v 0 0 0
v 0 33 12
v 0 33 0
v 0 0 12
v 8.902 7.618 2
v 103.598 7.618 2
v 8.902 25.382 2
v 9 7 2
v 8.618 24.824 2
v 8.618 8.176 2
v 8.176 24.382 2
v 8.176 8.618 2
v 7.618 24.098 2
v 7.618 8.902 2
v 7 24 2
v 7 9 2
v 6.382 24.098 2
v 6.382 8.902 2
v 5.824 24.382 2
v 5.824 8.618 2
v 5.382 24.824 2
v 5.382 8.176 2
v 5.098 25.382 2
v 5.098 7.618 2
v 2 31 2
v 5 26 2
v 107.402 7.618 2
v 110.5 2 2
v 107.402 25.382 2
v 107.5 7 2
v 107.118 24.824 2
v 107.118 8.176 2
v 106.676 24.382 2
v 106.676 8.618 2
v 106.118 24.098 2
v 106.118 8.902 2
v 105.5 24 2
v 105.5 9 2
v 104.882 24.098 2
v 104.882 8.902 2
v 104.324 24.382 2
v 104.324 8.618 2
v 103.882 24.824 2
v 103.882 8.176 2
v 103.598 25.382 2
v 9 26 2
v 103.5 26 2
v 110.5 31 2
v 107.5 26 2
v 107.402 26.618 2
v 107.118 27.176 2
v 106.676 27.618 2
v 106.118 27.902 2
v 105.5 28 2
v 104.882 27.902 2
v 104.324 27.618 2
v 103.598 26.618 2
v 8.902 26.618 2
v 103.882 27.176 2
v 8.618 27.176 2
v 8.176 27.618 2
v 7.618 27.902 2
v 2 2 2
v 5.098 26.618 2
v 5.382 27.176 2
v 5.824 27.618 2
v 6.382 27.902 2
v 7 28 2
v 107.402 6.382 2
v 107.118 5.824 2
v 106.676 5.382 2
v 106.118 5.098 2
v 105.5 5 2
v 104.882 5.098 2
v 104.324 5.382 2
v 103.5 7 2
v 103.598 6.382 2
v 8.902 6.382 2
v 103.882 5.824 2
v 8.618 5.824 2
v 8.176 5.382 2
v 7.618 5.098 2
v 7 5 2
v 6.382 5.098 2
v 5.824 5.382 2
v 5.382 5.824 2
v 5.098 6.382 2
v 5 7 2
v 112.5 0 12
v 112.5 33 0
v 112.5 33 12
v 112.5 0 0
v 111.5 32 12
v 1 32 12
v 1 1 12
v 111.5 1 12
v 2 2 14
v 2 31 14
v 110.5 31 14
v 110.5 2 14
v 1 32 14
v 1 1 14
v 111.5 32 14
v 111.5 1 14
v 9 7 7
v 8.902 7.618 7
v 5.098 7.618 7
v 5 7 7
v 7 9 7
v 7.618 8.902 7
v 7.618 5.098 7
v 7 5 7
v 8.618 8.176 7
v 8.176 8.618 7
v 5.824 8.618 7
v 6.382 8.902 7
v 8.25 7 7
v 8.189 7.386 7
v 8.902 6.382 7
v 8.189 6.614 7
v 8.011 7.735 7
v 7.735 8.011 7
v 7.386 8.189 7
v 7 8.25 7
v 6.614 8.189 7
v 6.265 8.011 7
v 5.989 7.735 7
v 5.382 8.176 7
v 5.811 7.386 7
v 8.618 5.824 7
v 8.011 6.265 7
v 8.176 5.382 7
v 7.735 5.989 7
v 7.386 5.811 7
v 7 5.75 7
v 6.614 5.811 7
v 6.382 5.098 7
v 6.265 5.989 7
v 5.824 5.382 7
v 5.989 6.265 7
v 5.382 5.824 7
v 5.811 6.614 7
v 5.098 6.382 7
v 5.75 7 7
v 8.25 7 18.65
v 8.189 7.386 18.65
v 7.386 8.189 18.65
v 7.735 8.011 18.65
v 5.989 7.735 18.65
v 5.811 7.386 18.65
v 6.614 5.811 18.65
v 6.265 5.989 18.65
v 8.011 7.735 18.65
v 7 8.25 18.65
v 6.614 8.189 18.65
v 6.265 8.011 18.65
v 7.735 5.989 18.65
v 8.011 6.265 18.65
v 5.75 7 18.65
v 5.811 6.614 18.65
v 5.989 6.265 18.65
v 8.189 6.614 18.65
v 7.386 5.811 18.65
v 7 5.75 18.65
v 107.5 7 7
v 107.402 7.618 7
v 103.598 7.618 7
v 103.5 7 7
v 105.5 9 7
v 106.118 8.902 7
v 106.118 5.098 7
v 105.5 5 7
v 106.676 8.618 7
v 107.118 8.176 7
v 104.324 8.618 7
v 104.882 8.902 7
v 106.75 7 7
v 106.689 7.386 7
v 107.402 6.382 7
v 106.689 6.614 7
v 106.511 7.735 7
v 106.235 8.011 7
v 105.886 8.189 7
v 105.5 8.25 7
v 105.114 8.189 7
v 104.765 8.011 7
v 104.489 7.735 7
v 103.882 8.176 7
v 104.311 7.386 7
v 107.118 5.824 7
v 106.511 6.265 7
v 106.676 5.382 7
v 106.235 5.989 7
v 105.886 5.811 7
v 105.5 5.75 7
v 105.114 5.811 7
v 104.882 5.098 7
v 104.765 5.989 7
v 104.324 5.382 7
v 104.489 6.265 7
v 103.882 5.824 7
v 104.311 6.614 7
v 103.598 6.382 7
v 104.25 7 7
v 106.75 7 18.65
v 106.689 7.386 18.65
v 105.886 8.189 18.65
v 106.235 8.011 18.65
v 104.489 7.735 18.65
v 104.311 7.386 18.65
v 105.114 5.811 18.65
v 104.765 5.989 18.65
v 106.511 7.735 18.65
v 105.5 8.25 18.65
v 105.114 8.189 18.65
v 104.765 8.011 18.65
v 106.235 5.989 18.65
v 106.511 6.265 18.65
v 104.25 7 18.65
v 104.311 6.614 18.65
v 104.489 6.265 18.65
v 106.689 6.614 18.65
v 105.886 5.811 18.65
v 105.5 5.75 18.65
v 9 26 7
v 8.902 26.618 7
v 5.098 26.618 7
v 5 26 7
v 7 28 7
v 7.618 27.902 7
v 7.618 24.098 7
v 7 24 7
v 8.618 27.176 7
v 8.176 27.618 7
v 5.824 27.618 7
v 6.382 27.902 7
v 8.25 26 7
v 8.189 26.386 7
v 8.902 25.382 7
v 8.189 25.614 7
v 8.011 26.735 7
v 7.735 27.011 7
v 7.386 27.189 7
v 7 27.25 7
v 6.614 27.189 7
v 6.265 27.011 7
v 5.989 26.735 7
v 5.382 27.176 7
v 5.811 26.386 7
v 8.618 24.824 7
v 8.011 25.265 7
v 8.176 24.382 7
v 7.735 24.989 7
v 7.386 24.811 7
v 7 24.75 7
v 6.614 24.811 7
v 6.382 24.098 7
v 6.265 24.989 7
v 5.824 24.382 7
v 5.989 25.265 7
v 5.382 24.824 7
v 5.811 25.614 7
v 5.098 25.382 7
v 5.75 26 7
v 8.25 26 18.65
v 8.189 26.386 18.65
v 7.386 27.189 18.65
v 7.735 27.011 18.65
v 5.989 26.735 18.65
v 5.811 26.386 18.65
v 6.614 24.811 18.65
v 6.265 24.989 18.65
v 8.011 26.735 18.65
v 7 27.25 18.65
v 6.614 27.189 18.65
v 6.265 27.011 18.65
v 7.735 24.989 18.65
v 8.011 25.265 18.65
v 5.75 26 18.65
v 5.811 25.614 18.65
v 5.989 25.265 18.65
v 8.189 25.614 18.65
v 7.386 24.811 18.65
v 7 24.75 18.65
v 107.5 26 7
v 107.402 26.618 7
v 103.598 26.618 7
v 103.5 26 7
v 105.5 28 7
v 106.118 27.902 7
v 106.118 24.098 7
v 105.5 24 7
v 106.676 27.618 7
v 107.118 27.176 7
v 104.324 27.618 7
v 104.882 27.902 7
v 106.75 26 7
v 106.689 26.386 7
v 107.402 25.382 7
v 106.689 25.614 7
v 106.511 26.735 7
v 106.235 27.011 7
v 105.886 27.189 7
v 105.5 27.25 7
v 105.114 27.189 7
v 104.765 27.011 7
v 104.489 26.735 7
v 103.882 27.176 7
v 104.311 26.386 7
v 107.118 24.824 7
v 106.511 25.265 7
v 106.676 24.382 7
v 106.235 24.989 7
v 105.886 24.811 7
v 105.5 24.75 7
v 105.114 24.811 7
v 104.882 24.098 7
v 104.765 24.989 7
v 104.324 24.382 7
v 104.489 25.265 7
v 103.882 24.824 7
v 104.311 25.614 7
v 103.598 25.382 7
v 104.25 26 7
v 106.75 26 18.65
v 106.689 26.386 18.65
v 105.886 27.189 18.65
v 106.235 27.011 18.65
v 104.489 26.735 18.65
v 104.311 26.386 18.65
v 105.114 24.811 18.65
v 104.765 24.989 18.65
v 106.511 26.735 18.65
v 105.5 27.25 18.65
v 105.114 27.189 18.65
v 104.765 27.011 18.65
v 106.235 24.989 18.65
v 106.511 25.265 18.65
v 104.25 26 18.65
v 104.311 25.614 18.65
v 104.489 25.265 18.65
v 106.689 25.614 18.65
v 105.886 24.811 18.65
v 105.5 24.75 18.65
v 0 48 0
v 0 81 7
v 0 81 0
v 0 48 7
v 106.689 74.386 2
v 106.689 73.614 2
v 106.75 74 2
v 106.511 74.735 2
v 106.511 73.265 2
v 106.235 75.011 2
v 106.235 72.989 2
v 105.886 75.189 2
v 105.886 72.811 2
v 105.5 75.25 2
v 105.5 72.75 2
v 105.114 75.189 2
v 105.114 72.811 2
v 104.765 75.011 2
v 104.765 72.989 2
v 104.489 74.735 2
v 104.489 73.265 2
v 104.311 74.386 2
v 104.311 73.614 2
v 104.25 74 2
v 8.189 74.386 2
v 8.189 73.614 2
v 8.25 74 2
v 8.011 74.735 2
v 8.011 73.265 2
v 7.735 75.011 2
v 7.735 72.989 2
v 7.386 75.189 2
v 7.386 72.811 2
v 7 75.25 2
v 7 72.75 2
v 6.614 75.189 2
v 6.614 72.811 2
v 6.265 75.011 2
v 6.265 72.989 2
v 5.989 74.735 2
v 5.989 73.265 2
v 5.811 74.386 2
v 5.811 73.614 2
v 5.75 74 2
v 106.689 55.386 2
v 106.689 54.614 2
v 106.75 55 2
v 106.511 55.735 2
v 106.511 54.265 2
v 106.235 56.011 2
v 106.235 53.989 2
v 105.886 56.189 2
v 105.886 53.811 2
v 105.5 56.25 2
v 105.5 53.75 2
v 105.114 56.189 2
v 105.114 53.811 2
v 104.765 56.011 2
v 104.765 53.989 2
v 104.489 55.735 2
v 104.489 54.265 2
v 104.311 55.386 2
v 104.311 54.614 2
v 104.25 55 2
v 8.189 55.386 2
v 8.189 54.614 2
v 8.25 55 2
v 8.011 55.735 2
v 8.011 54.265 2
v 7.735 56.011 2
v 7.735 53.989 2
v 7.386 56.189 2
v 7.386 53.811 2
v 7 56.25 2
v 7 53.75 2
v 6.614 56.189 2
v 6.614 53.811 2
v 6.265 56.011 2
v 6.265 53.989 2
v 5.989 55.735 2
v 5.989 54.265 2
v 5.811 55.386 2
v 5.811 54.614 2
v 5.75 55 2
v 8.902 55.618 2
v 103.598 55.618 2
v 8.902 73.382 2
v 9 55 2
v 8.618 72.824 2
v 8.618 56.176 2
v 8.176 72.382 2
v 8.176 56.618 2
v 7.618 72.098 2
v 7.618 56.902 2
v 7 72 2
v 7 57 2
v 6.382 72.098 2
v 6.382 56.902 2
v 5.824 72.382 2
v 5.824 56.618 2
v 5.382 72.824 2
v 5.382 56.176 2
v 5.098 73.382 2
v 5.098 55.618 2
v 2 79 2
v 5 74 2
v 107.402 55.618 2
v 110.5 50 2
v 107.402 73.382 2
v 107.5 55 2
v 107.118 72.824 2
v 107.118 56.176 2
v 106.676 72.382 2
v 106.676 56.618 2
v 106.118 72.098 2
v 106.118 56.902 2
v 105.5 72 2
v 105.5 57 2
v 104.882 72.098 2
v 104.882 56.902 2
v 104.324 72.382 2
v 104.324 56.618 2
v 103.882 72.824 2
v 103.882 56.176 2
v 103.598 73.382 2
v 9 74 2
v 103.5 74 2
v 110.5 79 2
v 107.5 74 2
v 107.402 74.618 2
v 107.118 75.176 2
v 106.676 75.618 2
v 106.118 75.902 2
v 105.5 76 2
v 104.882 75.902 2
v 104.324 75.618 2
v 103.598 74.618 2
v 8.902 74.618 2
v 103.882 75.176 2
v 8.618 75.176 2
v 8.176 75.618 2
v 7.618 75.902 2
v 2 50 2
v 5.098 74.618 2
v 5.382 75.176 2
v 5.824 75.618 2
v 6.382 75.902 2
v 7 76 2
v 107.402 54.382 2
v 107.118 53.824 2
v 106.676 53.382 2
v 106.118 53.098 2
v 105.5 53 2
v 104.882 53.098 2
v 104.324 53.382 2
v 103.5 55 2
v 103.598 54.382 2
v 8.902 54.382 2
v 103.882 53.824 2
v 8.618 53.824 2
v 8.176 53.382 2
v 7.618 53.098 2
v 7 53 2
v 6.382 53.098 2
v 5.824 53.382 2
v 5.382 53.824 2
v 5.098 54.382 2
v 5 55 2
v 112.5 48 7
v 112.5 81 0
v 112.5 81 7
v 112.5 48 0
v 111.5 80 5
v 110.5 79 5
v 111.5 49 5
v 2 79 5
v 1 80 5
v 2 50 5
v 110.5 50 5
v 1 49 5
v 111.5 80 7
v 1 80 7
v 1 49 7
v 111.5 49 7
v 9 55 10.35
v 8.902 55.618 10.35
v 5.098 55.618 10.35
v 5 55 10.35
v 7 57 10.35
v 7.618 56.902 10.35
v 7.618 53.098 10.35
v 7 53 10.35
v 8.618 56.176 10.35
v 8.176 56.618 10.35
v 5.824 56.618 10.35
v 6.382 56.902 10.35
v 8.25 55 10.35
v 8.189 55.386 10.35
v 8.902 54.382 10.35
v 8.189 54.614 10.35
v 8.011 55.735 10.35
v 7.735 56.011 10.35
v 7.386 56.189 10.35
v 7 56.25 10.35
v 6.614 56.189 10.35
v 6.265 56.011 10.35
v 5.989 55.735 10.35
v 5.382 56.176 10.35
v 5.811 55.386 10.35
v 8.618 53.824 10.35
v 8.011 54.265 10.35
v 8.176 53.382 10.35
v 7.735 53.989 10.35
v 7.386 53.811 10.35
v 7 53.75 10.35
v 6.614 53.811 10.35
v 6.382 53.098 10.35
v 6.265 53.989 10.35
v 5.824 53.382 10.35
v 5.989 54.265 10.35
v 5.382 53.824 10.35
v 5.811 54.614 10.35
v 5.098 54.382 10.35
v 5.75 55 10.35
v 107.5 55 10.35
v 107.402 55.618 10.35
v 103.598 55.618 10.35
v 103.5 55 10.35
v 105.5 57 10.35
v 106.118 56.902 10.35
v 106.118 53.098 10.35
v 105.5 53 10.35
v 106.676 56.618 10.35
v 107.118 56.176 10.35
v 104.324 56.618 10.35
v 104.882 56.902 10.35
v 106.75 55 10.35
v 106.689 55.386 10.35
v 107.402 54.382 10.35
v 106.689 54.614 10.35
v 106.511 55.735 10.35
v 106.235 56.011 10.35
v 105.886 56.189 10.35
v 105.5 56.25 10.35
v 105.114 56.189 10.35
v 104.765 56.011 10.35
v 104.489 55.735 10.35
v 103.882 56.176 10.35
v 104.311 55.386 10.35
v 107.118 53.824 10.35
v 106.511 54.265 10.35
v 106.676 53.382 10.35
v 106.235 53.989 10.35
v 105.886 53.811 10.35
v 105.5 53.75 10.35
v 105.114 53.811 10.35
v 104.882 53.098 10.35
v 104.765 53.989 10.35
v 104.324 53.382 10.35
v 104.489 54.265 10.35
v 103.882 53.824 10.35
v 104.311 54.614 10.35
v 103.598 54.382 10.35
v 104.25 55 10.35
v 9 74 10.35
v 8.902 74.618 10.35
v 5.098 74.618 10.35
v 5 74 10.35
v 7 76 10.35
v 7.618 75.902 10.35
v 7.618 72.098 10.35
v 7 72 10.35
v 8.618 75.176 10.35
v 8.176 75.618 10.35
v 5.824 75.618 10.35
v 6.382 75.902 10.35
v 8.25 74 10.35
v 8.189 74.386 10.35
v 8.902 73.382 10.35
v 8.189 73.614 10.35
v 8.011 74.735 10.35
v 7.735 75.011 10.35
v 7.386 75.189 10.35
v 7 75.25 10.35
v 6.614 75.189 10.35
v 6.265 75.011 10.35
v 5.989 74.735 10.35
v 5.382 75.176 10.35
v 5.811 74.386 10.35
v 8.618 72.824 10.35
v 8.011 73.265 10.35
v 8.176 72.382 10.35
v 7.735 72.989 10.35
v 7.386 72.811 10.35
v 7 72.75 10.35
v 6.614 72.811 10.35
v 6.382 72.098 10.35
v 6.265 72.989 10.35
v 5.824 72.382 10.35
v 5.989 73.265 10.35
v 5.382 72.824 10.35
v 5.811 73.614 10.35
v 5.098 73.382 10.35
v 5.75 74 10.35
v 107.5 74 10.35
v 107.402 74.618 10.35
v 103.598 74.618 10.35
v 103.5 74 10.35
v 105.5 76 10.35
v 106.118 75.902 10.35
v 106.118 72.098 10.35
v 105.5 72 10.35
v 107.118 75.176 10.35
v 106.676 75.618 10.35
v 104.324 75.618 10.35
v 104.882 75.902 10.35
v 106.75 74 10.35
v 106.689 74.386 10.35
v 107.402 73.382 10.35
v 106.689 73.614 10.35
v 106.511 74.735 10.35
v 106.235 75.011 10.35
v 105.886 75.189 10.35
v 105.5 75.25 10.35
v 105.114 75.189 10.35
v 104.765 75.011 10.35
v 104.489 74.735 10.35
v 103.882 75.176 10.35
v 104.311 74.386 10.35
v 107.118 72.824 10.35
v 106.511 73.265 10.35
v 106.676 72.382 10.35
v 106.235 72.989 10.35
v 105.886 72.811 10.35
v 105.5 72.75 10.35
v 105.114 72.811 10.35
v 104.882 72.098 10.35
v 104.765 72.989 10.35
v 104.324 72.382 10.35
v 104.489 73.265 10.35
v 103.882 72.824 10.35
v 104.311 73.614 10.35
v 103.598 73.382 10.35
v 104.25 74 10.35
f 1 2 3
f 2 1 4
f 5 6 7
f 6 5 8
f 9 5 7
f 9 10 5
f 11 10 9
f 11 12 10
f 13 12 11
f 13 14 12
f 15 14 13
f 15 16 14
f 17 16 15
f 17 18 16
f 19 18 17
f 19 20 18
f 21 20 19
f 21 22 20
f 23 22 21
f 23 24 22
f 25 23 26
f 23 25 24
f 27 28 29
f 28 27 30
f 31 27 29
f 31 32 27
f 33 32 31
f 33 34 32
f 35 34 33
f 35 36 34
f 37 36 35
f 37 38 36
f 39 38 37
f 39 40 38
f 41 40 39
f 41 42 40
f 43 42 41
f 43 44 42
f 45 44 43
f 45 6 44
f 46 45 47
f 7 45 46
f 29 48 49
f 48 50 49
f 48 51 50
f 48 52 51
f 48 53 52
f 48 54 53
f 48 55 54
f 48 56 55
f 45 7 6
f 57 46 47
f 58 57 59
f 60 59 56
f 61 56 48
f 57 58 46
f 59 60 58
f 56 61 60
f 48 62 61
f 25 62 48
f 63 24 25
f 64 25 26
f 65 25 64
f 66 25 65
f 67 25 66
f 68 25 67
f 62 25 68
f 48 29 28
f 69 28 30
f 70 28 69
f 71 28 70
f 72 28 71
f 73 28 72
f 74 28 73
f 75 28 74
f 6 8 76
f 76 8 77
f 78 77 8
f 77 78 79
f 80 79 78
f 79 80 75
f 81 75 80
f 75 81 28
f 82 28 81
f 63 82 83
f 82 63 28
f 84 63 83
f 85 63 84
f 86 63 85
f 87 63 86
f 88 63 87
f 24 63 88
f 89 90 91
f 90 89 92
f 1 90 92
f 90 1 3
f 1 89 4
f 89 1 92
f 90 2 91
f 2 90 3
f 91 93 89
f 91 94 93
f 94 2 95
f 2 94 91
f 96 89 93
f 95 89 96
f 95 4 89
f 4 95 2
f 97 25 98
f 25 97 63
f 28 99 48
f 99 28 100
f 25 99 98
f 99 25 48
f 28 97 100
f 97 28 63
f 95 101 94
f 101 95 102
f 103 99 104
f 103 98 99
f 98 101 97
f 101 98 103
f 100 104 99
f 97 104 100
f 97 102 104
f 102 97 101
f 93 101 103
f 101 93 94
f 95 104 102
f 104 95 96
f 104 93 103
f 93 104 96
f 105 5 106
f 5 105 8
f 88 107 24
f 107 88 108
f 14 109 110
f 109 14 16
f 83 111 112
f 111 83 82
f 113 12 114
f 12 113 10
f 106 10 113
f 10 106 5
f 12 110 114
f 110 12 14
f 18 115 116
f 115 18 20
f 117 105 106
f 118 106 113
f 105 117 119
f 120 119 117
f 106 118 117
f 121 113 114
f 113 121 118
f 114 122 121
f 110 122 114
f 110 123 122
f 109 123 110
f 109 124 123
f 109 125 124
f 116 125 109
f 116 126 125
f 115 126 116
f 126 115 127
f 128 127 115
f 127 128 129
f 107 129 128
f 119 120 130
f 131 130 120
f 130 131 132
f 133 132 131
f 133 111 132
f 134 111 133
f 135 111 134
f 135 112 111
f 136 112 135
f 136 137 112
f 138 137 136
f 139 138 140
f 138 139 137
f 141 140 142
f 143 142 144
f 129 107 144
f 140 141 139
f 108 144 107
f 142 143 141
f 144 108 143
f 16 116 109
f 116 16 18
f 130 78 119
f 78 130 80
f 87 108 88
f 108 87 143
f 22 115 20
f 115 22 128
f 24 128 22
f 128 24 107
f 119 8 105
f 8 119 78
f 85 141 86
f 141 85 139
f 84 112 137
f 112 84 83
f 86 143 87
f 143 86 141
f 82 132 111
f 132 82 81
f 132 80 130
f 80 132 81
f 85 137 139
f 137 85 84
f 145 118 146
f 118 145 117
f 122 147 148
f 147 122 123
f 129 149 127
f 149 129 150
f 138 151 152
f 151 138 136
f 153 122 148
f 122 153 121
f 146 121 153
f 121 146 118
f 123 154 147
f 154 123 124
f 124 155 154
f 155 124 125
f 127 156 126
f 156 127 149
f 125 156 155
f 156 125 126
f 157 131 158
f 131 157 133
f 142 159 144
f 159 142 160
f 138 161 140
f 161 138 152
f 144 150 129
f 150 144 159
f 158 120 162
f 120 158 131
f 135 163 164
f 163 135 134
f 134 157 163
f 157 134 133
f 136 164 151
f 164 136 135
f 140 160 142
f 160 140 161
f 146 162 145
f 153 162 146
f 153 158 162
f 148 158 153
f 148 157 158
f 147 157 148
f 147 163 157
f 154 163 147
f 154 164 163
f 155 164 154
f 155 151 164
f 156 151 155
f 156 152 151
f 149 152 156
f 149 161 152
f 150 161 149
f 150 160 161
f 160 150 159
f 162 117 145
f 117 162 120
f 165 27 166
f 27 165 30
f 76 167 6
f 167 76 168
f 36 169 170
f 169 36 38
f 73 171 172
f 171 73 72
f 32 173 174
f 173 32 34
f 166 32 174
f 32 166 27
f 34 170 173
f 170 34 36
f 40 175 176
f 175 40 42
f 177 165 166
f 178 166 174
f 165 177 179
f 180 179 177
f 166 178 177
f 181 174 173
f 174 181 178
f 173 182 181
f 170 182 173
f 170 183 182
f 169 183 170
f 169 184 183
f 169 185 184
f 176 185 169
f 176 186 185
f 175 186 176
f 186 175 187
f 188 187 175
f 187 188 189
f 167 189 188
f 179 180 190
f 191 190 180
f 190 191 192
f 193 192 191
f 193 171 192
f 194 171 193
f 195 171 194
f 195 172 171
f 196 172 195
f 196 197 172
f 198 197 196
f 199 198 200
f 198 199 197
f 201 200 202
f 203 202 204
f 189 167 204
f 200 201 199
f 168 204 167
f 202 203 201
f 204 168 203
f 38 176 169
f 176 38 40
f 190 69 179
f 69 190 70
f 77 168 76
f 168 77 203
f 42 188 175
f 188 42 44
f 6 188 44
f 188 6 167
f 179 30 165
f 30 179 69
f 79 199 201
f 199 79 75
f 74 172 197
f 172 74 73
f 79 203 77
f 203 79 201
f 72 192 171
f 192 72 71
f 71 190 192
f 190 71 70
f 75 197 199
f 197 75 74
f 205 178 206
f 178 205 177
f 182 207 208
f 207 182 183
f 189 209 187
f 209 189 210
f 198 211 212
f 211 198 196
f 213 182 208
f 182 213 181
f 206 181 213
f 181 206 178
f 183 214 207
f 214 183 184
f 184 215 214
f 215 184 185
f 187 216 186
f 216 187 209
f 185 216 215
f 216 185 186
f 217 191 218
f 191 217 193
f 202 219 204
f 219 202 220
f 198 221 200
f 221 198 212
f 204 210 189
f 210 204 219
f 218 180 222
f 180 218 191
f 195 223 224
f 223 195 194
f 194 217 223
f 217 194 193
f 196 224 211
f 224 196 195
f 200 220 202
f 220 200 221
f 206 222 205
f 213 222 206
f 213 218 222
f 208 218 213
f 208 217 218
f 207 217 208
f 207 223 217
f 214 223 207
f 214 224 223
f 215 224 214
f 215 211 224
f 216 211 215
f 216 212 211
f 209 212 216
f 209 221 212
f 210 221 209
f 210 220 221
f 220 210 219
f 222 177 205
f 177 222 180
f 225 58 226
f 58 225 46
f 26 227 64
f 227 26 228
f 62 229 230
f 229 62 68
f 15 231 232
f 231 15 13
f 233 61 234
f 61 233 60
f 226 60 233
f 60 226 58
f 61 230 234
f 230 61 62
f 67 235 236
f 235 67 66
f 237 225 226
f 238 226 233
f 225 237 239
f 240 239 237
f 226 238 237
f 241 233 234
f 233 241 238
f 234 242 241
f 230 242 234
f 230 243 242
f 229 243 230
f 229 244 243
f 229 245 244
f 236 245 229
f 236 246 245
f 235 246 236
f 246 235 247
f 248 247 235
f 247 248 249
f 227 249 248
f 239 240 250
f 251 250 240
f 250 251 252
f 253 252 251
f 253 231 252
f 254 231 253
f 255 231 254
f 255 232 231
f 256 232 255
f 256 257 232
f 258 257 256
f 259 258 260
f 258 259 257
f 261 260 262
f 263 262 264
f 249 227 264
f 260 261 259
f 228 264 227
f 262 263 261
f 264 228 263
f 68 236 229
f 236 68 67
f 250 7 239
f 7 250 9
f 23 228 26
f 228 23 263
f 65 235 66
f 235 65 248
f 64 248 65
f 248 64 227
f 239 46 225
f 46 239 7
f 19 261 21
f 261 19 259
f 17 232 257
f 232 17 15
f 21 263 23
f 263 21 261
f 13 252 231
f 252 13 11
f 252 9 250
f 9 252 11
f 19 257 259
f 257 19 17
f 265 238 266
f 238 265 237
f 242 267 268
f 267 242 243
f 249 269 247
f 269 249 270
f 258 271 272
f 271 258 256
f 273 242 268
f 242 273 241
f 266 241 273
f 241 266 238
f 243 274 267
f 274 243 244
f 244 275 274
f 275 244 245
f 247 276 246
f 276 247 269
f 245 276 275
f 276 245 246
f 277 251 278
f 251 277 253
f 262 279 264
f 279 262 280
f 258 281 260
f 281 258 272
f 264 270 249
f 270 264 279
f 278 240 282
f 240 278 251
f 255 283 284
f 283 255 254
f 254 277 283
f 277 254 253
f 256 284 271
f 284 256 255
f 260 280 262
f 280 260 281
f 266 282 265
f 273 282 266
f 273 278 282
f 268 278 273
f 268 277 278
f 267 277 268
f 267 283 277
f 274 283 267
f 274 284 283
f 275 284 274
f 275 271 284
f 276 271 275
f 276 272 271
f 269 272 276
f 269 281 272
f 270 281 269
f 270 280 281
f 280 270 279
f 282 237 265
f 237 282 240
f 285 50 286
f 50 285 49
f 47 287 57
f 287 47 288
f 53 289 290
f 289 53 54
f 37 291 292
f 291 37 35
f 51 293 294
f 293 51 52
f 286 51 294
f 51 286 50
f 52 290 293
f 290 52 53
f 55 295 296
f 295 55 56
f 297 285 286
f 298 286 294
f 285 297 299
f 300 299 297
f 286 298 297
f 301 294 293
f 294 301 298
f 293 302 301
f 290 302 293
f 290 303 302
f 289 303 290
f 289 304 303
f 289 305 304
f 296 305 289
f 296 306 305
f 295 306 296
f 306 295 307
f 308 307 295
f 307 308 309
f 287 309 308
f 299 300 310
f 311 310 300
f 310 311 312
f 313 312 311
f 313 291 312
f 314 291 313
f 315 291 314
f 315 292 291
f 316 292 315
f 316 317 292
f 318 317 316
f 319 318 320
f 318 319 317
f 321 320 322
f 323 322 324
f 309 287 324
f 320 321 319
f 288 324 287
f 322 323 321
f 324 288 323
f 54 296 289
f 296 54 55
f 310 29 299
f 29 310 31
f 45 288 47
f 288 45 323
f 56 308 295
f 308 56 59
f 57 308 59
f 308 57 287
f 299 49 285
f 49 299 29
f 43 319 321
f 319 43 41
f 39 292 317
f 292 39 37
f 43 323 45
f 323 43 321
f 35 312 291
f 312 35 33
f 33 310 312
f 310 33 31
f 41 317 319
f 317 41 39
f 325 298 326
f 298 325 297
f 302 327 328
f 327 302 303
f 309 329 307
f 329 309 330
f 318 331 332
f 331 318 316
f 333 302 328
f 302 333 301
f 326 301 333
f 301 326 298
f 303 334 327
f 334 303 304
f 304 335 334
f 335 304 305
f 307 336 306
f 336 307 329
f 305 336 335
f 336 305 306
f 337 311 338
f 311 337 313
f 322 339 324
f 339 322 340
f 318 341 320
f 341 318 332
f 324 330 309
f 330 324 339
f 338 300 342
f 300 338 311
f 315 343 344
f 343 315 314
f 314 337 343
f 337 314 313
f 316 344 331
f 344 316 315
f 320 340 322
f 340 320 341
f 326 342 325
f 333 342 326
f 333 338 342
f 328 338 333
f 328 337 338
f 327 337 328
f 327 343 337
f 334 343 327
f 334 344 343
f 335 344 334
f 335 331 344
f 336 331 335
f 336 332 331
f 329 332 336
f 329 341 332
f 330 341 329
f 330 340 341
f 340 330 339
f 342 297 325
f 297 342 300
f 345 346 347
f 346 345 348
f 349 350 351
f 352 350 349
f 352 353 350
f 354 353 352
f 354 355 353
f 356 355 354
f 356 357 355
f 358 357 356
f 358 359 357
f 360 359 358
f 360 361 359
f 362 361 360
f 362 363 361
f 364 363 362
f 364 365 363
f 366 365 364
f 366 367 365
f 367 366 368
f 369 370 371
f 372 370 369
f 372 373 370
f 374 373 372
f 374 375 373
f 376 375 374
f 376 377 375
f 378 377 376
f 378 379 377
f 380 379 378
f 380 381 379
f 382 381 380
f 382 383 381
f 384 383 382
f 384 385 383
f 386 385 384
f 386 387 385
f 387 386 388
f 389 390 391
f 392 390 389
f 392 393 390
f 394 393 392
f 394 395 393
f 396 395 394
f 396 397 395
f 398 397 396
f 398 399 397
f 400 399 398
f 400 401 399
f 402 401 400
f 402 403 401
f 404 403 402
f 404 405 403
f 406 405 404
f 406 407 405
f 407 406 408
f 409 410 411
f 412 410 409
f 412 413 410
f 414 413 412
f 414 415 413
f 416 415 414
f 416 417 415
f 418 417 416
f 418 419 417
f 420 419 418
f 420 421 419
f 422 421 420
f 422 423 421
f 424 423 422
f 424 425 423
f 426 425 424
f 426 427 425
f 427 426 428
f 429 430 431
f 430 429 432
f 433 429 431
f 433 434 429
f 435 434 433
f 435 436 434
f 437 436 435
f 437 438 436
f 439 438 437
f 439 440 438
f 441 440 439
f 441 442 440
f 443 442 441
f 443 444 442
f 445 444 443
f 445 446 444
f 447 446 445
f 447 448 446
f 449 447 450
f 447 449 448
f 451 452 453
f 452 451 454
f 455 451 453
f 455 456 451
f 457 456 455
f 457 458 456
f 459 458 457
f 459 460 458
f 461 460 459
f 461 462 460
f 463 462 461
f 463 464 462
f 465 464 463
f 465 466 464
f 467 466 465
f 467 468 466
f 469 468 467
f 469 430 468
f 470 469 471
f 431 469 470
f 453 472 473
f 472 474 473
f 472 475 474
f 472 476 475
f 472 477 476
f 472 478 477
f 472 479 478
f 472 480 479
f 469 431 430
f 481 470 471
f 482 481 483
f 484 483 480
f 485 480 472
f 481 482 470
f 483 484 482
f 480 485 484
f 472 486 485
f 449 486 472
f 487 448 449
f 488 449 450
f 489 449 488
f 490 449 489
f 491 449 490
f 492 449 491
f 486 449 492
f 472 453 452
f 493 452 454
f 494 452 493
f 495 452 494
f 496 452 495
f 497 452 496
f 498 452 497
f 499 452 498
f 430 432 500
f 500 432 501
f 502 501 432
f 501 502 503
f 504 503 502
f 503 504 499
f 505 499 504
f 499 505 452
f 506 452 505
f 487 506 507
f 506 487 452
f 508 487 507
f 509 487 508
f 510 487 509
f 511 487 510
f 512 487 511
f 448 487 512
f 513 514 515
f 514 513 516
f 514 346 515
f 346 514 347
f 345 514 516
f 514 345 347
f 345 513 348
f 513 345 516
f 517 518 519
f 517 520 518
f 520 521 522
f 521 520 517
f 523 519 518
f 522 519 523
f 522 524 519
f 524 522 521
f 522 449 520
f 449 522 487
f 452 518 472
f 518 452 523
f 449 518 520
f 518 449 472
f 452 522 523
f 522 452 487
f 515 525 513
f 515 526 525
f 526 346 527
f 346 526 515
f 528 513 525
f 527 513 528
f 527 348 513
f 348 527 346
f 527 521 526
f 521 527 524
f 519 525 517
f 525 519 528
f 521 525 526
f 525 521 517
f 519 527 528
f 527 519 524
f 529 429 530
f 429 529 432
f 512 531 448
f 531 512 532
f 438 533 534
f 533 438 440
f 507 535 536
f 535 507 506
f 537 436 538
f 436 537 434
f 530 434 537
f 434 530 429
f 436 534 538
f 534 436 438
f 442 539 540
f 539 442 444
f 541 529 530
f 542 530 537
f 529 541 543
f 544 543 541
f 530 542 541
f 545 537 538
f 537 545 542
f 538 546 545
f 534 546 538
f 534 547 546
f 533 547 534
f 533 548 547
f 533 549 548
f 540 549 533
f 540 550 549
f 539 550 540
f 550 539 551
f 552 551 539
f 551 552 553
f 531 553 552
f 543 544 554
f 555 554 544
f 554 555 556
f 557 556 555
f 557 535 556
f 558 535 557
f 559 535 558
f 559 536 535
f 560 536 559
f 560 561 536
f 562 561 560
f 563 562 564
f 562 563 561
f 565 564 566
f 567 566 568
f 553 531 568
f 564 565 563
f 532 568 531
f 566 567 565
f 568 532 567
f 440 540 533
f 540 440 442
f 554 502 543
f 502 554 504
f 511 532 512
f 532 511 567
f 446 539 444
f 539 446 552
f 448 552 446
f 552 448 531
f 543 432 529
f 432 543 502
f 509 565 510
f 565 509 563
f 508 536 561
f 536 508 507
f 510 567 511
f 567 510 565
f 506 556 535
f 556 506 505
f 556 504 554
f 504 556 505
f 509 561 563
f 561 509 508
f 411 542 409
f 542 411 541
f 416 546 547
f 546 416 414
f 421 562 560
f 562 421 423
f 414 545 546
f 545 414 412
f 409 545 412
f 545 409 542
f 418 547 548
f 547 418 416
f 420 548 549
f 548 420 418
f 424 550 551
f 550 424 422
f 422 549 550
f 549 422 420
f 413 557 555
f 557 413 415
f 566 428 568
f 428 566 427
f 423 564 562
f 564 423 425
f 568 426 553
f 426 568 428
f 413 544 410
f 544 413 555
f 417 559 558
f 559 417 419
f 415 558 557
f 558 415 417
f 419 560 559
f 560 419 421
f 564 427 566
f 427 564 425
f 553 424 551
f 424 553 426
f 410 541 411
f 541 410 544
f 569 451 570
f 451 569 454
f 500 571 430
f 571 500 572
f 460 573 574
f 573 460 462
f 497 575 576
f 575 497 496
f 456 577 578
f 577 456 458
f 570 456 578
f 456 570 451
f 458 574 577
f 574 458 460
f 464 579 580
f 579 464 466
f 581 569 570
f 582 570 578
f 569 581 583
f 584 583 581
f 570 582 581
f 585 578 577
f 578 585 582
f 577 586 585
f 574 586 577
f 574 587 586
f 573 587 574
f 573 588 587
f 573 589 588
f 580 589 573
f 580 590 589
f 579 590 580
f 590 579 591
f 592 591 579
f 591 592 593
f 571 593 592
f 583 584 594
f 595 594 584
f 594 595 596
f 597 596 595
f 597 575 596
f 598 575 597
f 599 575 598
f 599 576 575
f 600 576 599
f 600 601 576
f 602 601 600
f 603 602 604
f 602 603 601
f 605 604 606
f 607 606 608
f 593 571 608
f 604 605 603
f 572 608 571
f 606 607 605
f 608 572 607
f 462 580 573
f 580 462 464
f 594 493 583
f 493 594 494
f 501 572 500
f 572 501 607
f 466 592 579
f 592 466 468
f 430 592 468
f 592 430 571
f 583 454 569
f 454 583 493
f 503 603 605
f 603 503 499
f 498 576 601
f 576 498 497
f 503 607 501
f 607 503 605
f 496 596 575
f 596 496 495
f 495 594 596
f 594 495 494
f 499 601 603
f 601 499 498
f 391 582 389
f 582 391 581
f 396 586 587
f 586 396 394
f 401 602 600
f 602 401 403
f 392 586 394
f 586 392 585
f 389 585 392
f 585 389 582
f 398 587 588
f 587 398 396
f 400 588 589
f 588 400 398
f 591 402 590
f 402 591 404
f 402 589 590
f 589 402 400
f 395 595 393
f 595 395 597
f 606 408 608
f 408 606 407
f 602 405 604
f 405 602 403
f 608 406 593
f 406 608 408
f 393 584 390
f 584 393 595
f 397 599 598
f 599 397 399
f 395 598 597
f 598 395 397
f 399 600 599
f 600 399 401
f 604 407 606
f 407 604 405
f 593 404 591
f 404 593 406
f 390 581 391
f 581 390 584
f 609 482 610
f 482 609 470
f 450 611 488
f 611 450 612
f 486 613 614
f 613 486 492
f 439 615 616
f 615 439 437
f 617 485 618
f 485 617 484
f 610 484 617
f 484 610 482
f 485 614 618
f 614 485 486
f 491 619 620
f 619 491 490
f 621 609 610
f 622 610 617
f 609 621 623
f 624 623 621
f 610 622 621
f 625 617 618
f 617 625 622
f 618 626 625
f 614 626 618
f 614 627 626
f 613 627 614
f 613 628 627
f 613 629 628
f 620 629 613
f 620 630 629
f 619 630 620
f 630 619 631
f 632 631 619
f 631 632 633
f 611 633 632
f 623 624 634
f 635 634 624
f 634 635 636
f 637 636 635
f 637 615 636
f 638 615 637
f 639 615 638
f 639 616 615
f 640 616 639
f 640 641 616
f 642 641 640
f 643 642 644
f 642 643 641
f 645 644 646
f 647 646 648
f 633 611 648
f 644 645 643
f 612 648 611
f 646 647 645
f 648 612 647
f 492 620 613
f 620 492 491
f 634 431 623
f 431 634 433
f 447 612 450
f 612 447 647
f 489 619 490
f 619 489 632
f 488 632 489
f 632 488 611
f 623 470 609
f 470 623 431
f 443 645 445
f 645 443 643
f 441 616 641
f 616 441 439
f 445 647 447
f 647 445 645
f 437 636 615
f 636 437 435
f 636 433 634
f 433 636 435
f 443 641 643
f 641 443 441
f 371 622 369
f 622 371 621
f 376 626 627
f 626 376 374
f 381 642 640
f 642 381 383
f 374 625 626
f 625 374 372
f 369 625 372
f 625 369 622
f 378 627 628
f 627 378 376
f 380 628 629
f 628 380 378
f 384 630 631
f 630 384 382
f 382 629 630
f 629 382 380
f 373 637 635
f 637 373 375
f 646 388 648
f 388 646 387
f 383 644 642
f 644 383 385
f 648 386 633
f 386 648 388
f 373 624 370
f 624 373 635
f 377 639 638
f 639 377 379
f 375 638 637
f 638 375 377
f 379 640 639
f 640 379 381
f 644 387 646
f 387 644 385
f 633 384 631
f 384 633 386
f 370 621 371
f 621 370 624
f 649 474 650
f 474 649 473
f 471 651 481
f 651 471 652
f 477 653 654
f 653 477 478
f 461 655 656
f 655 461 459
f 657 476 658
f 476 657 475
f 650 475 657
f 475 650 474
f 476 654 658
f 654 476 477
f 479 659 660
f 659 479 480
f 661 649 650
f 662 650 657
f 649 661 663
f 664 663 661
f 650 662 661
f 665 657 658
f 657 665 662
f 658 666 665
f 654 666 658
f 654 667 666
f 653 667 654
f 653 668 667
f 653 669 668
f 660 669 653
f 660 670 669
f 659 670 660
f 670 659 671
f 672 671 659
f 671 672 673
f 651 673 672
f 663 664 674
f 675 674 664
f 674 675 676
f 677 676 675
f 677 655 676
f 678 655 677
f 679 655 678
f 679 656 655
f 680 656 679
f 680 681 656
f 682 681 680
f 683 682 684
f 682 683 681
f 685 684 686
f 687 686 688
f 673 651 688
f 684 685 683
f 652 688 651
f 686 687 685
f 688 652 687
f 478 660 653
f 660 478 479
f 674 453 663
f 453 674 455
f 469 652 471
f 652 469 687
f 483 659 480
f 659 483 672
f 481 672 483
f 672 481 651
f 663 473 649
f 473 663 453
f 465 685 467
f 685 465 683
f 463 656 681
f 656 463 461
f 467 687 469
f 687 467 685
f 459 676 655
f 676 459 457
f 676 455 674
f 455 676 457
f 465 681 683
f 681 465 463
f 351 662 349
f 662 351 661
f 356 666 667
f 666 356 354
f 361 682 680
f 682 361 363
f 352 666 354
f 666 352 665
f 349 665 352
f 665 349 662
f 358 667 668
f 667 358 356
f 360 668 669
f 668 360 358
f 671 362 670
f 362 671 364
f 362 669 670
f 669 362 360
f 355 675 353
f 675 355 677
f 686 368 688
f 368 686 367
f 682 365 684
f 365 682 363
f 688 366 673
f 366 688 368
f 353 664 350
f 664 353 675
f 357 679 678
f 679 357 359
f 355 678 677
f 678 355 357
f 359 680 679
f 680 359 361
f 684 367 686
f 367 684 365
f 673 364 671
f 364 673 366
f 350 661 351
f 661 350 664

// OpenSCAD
// This design is parameterized based on holes in a PCB.
// It assumes that the PCB has 4 holes, evenly spaced as
// corners of a rectangle.

// Note: width refers to X axis, depth to Y, height to Z

// Edit these parameters for your own board dimensions
wall_thickness = 2;
floor_thickness = 2;
ceiling_thickness = 2;

bottom_wall_height = 10;
top_wall_height = 5;

// Total height of box = floor_thickness + ceiling_thickness + bottom_wall_height + top_wall_height

hole_spacing_x = 98.5;
hole_spacing_y = 19;

hole_diameter = 2.5;
standoff_diameter = 4;

// How much the PCB needs to be raised from the bottom
// to leave room for solderings and whatnot
standoff_height = 5;
board_thickness = 1.65;

// padding between standoff and wall
padding_left = 3;
padding_right = 3;
padding_back = 3;
padding_front = 3;

// ridge where bottom and top off box can overlap
// Make sure this isn't less than top_wall_height
ridge_height = 2;

//-------------------------------------------------------------------

// Calculated globals
pin_height = bottom_wall_height + top_wall_height - standoff_height; 


module ceilingless_box(width, depth, height) {
    // Floor
    cube([width, depth, floor_thickness]);
    
    // Left wall
    translate([0, 0, floor_thickness])
        cube([
            wall_thickness,
            depth,
            height]);
    
    // Right wall
    translate([width - wall_thickness, 0, floor_thickness])
        cube([
            wall_thickness,
            depth,
            height]);
    
    // Rear wall
    translate([wall_thickness, depth - wall_thickness, floor_thickness])
        cube([
            width - 2 * wall_thickness,
            wall_thickness,
            height]);
    
    // Front wall
    translate([wall_thickness, 0, floor_thickness])
        cube([
            width - 2 * wall_thickness,
            wall_thickness,
            height]);
}

module bottom_case() {
    floor_width = hole_spacing_x + standoff_diameter + padding_left + padding_right + wall_thickness * 2;
    floor_depth = hole_spacing_y + standoff_diameter + padding_front + padding_back + wall_thickness * 2;
    
    module box() {
        ceilingless_box(floor_width, floor_depth, bottom_wall_height);        
        
        // Left Ridge
        translate([
            wall_thickness / 2,
            wall_thickness / 2,
            floor_thickness + bottom_wall_height])
            cube([
                wall_thickness / 2,
                floor_depth - wall_thickness,
                ridge_height]);
        
        
        // Right Ridge
        translate([
            floor_width - wall_thickness,
            wall_thickness / 2,
            floor_thickness + bottom_wall_height])
            cube([
                wall_thickness / 2,
                floor_depth - wall_thickness,
                ridge_height]);
                
        // Rear Ridge
        translate([
            wall_thickness,
            floor_depth - wall_thickness,
            floor_thickness + bottom_wall_height])
            cube([
                floor_width - wall_thickness * 2,
                wall_thickness / 2,
                ridge_height]);
                
        // Front Ridge
        translate([
            wall_thickness,
            wall_thickness / 2,
            floor_thickness + bottom_wall_height])
            cube([
                floor_width - 2 * wall_thickness,
                wall_thickness / 2,
                ridge_height
            ]);
    }
        
    
    // Place the standoffs and through-PCB pins in the box
    module pcb_holder() {        
        base_offset_x = wall_thickness + padding_left + standoff_diameter / 2;
        base_offset_y = wall_thickness + padding_front + standoff_diameter / 2;
        
        module pin() {
            // Standoff
            translate([0, 0,  standoff_height / 2])
                cylinder(
                    r = standoff_diameter / 2,
                    h = standoff_height,
                    center = true,
                    $fn = 20);
            
            // Through-PCB ping
            translate([0, 0, standoff_height + (board_thickness + pin_height) / 2])
                cylinder(
                    r = hole_diameter / 2,
                    h = board_thickness + pin_height,
                    center = true,
                    $fn = 20);
        }
        
        // Front left
        translate([base_offset_x, base_offset_y, floor_thickness])
            pin();
        
        // Front right
        translate([base_offset_x + hole_spacing_x, base_offset_y, floor_thickness])
            pin();
        
        // Rear left
        translate([base_offset_x, base_offset_y + hole_spacing_y, floor_thickness])
            pin();
        
        // Rear right
        translate([base_offset_x + hole_spacing_x, base_offset_y + hole_spacing_y, floor_thickness])
            pin();
        
    }
    
    box();
    pcb_holder();
}

module top_case() {
    floor_width = hole_spacing_x + standoff_diameter + padding_left + padding_right + wall_thickness * 2;
    floor_depth = hole_spacing_y + standoff_diameter + padding_front + padding_back + wall_thickness * 2;
    
    module box() {
        ceilingless_box(floor_width, floor_depth, top_wall_height - ridge_height);
        
        // Left Ridge
        translate([
            0,
            0,
            floor_thickness + top_wall_height - ridge_height])
            cube([
                wall_thickness / 2,
                floor_depth,
                ridge_height]);
        
        
        // Right Ridge
        translate([
            floor_width - wall_thickness / 2,
            0,
            floor_thickness + top_wall_height - ridge_height])
            cube([
                wall_thickness / 2,
                floor_depth,
                ridge_height]);
                
        // Rear Ridge
        translate([
            wall_thickness / 2,
            floor_depth - wall_thickness / 2,
            floor_thickness + top_wall_height - ridge_height])
            cube([
                floor_width - wall_thickness,
                wall_thickness / 2,
                ridge_height]);
                
        // Front Ridge
        translate([
            wall_thickness / 2,
            0,
            floor_thickness + top_wall_height - ridge_height])
            cube([
                floor_width - wall_thickness,
                wall_thickness / 2,
                ridge_height
            ]);        
    }
    
    module pcb_holder() {
        pin_holder_height = pin_height - board_thickness;
        base_offset_x = wall_thickness + padding_left + standoff_diameter / 2;
        base_offset_y = wall_thickness + padding_back + standoff_diameter / 2;
        
        module pin_receiver() {
            difference() {
                translate([0, 0,  pin_holder_height / 2])
                    cylinder(
                        r = standoff_diameter / 2,
                        h = pin_holder_height,
                        center = true,
                        $fn = 20);
                
                translate([0, 0, (pin_holder_height + 2) / 2])
                    cylinder(
                        r = hole_diameter / 2,
                        h = pin_holder_height + 2,
                        center = true,
                        $fn = 20);
           }
        }
        
        // Keep in mind that this part needs to be turned over to get the correct
        // orientation. In the design, the rear left here looks like the front left.
        
        // Rear left
        translate([base_offset_x, base_offset_y, floor_thickness])
            pin_receiver();
        
        // Rear right
        translate([base_offset_x + hole_spacing_x, base_offset_y, floor_thickness])
            pin_receiver();
        
        // Front left
        translate([base_offset_x, base_offset_y + hole_spacing_y, floor_thickness])
            pin_receiver();
        
        // Front right
        translate([base_offset_x + hole_spacing_x, base_offset_y + hole_spacing_y, floor_thickness])
            pin_receiver();
    }
    
    box();
    pcb_holder();
}


bottom_case();

translate([
    0,
    15 + hole_spacing_y + standoff_diameter + padding_front + padding_back + wall_thickness * 2,
    0])
    top_case();
